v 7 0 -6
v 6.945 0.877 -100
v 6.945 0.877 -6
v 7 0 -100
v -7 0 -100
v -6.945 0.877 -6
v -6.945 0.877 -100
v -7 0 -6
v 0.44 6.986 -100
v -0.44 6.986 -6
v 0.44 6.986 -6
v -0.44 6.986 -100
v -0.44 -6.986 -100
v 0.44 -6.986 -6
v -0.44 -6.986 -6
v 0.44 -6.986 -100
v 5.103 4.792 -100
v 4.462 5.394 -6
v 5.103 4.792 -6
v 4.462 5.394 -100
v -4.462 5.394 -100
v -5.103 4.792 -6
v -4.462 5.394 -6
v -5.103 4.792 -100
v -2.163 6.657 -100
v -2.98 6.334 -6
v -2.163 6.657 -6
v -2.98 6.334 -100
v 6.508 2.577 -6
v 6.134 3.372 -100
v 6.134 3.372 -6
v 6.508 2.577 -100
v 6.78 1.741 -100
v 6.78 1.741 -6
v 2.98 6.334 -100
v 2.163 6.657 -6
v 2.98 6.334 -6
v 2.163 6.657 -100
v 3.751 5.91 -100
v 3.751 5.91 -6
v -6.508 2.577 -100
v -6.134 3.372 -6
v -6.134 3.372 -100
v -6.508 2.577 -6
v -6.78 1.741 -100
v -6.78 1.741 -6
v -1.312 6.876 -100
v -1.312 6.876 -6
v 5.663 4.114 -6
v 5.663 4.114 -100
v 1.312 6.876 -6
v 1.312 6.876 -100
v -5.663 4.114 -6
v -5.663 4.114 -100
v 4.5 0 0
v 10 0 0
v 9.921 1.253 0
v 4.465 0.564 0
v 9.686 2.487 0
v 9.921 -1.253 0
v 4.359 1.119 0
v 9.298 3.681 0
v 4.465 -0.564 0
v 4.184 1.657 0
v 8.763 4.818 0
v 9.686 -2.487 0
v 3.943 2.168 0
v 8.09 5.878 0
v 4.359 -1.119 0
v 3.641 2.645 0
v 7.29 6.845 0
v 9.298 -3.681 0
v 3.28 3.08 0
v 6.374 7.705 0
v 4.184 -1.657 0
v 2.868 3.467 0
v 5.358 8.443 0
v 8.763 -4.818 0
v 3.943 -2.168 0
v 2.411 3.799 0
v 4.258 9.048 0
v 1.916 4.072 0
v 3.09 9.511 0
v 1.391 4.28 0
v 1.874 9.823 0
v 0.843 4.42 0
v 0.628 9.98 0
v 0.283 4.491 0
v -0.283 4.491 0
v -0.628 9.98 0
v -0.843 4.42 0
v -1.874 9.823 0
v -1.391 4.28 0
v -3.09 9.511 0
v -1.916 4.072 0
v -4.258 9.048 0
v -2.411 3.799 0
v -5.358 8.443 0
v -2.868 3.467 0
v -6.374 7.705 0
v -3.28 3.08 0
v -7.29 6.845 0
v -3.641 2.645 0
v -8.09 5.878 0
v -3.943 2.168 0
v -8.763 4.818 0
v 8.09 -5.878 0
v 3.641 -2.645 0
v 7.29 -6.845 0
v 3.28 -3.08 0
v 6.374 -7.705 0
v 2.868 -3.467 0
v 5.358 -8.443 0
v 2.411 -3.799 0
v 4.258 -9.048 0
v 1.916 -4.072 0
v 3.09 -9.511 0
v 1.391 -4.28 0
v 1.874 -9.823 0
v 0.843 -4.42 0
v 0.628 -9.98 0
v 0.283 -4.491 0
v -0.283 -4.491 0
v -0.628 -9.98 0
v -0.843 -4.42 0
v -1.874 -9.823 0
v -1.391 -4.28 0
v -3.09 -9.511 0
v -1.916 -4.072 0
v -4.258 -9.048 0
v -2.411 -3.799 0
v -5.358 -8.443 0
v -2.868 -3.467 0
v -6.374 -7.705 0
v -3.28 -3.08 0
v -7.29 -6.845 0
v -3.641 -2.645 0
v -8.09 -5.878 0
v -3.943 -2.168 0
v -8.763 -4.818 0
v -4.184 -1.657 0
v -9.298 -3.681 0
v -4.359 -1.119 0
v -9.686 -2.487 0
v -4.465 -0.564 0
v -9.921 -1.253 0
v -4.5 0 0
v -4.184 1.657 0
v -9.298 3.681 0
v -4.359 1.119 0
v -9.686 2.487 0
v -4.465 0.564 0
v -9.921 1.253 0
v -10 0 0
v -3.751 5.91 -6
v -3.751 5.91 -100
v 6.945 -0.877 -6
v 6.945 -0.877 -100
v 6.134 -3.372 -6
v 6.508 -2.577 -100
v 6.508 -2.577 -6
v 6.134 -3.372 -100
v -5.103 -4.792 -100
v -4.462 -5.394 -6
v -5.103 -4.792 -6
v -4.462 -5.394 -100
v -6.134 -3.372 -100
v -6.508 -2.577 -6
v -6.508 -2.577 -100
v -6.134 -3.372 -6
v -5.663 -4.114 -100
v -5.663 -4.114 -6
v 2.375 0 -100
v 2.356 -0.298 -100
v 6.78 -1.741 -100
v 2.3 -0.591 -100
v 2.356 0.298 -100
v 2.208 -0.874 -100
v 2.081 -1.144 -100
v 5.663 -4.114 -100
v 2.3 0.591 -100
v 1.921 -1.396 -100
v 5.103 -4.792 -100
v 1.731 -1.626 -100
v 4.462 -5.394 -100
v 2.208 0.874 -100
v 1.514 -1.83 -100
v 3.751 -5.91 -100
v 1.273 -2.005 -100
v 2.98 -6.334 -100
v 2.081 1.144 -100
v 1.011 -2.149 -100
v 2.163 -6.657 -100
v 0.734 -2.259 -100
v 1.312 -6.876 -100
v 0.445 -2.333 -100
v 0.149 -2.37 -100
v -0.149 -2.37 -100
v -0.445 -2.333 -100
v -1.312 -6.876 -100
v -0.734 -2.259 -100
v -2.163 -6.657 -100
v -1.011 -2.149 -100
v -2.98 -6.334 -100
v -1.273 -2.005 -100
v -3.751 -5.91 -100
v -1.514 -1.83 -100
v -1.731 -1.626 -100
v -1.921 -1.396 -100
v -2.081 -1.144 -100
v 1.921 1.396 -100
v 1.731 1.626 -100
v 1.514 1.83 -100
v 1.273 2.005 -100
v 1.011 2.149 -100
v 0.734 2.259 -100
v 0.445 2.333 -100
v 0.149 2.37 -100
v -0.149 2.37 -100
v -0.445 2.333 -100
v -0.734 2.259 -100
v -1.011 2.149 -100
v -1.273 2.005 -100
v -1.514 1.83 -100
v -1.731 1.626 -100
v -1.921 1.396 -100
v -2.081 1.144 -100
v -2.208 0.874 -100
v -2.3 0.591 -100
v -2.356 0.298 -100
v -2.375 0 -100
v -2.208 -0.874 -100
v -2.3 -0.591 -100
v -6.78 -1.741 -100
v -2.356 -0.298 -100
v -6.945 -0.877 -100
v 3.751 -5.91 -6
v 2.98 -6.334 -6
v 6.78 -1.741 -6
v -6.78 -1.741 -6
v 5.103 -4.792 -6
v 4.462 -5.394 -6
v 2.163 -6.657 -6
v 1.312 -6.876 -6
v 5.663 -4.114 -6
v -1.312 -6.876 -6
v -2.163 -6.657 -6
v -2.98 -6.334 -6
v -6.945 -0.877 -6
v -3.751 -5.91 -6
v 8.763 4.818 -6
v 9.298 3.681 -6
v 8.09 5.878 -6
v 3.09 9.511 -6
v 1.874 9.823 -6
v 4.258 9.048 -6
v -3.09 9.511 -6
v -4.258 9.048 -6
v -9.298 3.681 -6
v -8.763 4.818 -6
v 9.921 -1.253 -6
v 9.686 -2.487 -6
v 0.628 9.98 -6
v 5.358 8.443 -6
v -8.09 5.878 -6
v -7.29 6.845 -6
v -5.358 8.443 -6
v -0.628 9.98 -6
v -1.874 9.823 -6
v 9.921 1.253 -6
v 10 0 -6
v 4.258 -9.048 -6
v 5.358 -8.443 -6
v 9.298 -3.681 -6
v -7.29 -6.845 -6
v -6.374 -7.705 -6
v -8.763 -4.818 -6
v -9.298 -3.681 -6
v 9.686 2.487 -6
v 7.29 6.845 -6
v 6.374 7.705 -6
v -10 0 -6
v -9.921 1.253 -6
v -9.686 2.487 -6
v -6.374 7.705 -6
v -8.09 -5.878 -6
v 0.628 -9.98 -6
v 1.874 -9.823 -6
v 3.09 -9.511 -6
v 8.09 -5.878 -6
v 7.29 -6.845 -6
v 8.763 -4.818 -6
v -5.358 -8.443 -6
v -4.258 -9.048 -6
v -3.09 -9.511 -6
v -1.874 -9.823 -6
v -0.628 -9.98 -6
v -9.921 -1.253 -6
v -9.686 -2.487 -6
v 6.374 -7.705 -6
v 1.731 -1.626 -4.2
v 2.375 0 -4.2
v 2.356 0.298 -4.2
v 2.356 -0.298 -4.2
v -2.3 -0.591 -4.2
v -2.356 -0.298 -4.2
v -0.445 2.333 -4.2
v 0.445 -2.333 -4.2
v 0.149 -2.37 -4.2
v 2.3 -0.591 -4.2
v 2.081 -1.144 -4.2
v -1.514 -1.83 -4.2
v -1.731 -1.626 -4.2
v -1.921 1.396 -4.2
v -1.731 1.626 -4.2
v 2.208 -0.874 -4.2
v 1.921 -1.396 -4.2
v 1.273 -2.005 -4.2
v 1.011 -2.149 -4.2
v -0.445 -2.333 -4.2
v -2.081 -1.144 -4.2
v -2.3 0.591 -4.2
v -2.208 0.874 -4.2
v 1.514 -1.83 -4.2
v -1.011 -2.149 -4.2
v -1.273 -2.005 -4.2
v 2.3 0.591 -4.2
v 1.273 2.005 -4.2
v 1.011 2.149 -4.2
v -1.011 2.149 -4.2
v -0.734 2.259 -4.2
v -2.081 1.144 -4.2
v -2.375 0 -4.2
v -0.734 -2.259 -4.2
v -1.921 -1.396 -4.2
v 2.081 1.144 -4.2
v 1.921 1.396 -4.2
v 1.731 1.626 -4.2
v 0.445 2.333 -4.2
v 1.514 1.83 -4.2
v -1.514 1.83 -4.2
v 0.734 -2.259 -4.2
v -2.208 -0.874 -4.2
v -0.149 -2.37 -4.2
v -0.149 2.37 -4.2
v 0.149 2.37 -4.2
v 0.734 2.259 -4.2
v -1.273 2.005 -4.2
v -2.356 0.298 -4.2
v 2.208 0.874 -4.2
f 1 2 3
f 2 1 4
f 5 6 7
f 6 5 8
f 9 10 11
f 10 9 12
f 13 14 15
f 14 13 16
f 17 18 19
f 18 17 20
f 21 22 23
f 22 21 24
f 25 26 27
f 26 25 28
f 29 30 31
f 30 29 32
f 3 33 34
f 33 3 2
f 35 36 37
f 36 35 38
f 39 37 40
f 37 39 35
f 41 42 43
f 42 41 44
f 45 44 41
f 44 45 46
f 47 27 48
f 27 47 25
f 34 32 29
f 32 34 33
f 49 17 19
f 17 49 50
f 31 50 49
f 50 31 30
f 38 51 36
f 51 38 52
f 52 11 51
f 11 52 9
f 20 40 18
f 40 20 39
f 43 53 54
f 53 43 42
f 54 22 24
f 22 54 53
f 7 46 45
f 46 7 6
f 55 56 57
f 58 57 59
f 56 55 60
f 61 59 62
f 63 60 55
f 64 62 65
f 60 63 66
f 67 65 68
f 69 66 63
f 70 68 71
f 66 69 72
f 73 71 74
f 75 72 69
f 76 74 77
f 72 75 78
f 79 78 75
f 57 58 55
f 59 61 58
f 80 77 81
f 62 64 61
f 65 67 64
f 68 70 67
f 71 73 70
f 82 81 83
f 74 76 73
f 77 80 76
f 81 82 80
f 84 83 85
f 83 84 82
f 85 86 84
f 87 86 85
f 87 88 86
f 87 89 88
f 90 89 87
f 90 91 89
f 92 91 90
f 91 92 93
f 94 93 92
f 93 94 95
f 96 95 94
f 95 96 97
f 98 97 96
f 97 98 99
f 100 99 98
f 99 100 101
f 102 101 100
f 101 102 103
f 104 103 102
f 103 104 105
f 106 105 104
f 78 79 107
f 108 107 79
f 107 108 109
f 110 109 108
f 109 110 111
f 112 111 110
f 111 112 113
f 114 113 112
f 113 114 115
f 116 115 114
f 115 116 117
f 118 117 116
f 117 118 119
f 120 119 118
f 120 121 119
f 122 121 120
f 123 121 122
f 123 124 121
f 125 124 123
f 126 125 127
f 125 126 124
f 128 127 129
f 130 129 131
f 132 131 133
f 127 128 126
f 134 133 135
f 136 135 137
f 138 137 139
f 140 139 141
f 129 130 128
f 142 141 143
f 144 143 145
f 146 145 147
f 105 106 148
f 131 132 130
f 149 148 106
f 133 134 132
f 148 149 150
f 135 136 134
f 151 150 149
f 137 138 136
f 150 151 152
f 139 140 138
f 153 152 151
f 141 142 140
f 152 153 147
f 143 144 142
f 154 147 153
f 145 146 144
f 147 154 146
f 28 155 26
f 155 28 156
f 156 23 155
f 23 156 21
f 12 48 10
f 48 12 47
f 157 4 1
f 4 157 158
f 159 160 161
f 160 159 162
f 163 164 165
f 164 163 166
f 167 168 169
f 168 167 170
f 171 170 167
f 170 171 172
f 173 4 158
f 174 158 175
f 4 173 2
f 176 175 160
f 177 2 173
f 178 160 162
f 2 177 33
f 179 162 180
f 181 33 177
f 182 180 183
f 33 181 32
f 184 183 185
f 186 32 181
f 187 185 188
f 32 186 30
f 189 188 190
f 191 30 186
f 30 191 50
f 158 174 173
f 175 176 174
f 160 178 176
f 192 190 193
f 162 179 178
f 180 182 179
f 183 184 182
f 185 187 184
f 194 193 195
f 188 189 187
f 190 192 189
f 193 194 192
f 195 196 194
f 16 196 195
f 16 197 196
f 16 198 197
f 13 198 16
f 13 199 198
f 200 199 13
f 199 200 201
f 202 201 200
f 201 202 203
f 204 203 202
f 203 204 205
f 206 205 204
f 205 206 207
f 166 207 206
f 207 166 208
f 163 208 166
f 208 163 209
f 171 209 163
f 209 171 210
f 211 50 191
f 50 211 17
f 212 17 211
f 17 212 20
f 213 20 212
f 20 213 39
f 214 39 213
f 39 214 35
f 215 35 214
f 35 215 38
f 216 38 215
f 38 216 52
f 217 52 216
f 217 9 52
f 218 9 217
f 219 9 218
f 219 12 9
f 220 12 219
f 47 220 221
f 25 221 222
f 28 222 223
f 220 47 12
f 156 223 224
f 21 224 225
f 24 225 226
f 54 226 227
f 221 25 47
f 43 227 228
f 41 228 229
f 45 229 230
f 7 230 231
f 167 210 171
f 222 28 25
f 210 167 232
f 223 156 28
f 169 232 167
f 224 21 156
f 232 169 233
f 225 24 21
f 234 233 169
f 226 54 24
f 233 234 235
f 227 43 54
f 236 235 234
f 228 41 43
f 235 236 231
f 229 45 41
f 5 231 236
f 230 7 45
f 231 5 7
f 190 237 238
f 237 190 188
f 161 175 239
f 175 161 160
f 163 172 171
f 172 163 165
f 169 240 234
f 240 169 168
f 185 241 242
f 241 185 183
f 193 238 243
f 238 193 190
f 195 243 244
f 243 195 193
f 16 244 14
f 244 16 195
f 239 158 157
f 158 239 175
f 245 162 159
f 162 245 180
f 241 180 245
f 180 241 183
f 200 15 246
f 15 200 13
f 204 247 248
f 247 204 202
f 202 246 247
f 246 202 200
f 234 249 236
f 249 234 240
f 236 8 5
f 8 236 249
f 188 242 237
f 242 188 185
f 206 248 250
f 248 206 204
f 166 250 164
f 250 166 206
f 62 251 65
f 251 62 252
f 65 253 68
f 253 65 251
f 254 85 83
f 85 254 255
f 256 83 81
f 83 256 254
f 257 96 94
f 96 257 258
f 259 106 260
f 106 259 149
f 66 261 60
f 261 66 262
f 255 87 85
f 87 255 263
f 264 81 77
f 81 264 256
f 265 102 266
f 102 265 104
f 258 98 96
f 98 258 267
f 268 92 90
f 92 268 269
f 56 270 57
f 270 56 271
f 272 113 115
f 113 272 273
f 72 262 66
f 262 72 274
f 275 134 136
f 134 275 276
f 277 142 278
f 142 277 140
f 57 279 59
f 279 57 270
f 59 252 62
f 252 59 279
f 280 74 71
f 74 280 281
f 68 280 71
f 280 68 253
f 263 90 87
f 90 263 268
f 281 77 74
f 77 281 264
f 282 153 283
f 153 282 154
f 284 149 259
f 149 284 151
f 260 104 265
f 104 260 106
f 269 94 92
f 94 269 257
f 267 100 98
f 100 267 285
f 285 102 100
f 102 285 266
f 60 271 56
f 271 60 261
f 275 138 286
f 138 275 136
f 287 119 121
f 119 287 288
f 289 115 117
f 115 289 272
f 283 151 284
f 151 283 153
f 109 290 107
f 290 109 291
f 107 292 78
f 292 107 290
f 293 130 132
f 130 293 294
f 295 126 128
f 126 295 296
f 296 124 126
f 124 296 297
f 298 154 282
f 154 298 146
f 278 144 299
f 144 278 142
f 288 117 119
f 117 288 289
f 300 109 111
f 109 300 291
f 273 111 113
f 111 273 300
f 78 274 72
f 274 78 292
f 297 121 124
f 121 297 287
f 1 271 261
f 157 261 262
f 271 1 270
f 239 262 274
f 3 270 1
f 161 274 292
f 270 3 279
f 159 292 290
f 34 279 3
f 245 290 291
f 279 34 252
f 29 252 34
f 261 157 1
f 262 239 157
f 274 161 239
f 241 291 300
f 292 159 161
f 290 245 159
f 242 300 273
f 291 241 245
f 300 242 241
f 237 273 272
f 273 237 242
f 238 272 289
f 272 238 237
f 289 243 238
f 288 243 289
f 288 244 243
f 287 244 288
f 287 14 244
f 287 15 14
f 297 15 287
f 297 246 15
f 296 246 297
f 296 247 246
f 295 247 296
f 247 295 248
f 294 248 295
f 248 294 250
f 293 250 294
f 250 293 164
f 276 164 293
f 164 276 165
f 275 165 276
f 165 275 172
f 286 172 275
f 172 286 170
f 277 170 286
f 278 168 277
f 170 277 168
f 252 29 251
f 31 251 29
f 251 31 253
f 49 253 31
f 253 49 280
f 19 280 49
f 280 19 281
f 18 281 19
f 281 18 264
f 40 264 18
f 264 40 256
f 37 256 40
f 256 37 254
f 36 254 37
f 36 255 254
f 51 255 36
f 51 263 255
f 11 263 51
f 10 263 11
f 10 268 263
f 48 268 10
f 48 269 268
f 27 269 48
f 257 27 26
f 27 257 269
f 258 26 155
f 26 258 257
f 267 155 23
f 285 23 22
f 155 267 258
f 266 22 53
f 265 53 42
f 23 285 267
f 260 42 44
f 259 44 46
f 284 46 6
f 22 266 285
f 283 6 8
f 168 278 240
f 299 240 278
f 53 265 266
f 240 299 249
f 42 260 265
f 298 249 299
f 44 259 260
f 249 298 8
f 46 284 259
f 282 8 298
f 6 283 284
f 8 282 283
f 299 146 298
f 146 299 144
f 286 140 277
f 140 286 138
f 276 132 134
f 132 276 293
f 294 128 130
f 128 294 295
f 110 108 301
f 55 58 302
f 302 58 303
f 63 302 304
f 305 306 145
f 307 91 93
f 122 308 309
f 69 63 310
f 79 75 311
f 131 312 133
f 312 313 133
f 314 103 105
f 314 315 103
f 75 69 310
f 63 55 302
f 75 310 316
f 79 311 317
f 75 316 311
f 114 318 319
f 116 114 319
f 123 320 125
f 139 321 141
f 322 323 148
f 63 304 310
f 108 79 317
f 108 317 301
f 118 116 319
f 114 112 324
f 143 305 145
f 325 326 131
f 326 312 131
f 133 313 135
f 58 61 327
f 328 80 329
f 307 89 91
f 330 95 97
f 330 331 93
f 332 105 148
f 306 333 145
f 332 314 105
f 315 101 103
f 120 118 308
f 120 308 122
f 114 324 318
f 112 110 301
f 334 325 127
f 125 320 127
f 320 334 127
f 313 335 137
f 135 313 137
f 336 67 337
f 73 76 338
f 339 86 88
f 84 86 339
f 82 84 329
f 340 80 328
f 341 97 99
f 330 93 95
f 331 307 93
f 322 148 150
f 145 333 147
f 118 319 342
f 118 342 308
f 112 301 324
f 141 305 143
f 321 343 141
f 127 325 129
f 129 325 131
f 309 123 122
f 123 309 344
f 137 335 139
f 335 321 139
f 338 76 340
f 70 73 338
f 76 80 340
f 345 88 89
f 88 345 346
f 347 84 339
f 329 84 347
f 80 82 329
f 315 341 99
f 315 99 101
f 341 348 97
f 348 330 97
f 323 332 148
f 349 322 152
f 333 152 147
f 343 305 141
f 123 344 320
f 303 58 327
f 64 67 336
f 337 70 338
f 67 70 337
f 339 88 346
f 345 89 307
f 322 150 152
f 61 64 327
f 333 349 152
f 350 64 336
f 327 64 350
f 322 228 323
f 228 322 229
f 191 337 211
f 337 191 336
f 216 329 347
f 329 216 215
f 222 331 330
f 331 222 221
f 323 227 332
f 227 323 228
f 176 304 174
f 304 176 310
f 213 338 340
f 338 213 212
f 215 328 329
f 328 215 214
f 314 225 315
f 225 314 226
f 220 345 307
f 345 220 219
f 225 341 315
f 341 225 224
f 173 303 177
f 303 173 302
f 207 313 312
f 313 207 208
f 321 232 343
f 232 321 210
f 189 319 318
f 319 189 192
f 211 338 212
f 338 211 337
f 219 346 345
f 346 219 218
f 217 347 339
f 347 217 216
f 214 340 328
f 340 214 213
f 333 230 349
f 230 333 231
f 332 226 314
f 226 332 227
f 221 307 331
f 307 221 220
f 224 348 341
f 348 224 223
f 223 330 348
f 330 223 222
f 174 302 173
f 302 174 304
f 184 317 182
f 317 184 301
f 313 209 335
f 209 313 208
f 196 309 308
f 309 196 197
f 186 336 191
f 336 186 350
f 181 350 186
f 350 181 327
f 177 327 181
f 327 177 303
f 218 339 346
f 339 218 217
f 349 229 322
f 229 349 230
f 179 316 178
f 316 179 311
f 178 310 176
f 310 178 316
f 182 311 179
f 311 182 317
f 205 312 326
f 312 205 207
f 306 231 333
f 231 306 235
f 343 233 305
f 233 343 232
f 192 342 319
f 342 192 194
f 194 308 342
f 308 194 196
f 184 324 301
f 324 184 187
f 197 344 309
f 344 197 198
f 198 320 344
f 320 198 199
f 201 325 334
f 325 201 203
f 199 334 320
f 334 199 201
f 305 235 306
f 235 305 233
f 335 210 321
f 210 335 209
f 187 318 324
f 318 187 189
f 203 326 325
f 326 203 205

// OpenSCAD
$fn = 50;


difference() {
	union() {
		translate(v = [0, 0, -100.0000000000]) {
			cylinder(h = 100, r = 7.0000000000);
		}
		translate(v = [0, 0, -6.0000000000]) {
			cylinder(h = 6, r = 10.0000000000);
		}
	}
	union() {
		translate(v = [0, 0, 0]) {
			rotate(a = [0, 0, 0]) {
				difference() {
					union() {
						#translate(v = [0, 0, -100.0000000000]) {
							cylinder(h = 100, r = 2.2500000000);
						}
						#translate(v = [0, 0, -4.2000000000]) {
							cylinder(h = 4.2000000000, r1 = 2.3750000000, r2 = 4.5000000000);
						}
						#translate(v = [0, 0, -100.0000000000]) {
							cylinder(h = 100, r = 2.3750000000);
						}
						#translate(v = [0, 0, -100.0000000000]) {
							cylinder(h = 100, r = 2.2500000000);
						}
					}
					union();
				}
			}
		}
	}
}
